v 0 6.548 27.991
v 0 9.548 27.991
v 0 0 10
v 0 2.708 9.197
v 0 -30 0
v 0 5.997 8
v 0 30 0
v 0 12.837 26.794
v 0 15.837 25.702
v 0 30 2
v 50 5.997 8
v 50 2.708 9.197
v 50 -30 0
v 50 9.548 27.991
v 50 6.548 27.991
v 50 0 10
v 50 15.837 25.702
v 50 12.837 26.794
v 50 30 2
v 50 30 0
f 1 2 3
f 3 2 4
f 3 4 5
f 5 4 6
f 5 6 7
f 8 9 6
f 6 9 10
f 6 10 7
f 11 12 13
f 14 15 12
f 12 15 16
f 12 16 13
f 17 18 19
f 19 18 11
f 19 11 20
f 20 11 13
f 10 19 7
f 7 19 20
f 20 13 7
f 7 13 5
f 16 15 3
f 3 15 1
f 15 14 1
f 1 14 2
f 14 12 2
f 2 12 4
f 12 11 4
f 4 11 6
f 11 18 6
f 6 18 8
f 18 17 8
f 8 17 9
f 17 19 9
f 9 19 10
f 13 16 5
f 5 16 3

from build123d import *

# Parameters (mm, degrees)
ESQUISSE1_W        = 50
ESQUISSE1_H        = 30
BOSS_EXTRU_1_DEPTH = 2
BOSS_EXTRU_2_DEPTH = 50
BOSS_EXTRU_4_DEPTH = 50


with BuildPart() as part:
    # Esquisse1 → Boss.-Extru.1 (new body)
    with BuildSketch(Plane.XY):
        with Locations((25, 15)):
            Rectangle(ESQUISSE1_W, ESQUISSE1_H)
    extrude(amount=BOSS_EXTRU_1_DEPTH)

    # Esquisse2 → Boss.-Extru.2 (add)
    with BuildSketch(Plane(origin=(50, 0, 0), x_dir=(0, 0, -1), z_dir=(1, 0, 0))):
        Polygon((-2, 0), (-10, 0), (-27.990922917, 6.548160429), (-27.990922917, 9.548160429), (-9.197070502, 2.707757562), (-8, 5.996681735), (-26.793852416, 12.837084602), (-25.701941713, 15.837084602), (-2, 30), align=None)
    extrude(amount=-BOSS_EXTRU_2_DEPTH)

    # Esquisse4 → Boss.-Extru.4 (add)
    with BuildSketch(Plane(origin=(50, 0, 0), x_dir=(0, 0, -1), z_dir=(1, 0, 0))):
        Polygon((0, 0), (0, -30), (-10, 0), align=None)
    extrude(amount=-BOSS_EXTRU_4_DEPTH)


solid = part.part
